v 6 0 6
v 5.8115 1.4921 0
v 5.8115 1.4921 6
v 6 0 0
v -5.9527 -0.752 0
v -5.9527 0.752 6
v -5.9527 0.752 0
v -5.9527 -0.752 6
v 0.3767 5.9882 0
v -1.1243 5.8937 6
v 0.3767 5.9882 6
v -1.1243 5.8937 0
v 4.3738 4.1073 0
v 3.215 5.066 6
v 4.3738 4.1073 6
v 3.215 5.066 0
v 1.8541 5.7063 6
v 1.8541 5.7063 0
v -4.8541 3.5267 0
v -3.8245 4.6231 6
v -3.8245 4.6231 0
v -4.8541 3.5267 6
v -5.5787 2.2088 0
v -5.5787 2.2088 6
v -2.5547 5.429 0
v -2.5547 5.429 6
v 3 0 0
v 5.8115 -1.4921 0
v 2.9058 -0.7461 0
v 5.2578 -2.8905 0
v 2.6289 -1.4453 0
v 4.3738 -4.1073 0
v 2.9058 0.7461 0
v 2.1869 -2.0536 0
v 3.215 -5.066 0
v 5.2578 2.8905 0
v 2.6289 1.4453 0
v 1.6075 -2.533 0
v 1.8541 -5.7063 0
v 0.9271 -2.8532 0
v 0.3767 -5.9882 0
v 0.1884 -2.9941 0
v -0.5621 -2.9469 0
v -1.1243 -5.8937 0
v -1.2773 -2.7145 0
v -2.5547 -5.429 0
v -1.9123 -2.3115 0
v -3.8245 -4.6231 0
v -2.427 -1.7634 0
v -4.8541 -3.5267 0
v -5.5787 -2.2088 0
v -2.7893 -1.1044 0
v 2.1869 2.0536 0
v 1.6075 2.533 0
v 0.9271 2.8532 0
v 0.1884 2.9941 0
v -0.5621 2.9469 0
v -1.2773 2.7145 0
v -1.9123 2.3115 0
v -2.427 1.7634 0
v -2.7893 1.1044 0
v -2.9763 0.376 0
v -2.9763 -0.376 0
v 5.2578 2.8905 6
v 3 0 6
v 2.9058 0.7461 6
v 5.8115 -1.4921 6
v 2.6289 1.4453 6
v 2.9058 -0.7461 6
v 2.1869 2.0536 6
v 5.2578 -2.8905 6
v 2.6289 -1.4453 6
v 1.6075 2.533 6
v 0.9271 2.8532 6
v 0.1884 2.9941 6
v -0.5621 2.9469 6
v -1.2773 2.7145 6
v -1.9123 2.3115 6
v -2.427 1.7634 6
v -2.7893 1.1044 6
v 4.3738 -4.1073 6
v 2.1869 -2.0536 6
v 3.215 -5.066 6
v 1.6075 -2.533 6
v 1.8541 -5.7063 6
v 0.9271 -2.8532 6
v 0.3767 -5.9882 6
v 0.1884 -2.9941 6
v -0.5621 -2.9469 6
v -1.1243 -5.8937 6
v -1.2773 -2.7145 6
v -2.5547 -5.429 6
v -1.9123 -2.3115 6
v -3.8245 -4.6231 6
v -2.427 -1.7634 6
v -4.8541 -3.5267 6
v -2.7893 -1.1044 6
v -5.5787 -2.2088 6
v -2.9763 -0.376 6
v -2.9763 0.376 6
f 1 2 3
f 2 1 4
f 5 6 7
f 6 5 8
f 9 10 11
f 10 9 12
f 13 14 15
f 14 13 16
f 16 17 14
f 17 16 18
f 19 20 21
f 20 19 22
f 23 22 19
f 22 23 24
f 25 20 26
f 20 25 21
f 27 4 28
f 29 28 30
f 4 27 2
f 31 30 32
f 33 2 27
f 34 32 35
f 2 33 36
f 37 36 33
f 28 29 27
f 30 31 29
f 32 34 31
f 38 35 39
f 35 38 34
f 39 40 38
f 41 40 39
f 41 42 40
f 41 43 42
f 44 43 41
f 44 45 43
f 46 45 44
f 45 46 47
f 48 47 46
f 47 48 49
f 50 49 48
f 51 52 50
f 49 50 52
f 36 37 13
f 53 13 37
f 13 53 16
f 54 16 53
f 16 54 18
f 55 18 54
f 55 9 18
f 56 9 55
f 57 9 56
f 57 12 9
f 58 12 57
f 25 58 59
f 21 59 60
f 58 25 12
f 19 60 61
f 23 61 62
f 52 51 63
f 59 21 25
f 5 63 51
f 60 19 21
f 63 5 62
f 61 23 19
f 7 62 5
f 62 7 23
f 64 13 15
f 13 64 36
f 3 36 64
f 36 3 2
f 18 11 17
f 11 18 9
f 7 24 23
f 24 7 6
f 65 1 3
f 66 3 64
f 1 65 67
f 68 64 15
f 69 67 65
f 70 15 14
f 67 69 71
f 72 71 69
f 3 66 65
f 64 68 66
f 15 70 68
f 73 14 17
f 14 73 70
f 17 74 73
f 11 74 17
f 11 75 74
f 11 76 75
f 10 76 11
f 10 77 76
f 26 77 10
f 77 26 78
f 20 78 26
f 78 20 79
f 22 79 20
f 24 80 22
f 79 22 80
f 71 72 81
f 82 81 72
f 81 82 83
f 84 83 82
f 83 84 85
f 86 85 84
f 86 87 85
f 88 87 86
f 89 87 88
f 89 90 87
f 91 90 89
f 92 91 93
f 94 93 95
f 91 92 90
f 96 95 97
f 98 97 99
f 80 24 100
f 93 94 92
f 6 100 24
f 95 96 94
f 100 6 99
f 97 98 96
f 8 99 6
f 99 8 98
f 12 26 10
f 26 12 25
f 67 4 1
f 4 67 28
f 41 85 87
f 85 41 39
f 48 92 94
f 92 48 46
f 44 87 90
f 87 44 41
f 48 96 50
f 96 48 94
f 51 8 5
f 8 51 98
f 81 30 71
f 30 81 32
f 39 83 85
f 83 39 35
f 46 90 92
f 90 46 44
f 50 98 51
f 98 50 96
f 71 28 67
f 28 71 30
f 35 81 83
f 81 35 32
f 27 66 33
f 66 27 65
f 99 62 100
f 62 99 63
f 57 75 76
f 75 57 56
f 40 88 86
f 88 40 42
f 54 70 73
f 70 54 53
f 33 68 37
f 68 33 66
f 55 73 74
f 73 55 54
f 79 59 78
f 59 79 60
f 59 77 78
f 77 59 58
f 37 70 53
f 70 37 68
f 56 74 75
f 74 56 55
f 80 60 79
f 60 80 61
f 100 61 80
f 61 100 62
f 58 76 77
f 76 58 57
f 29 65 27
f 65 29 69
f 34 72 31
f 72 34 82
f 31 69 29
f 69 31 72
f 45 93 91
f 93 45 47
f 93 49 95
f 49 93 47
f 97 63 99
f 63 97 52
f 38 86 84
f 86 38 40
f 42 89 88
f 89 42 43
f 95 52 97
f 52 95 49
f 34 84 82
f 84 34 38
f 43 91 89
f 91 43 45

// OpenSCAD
quality=25;

pin_gap_radius=3;

backing_thickness=2*3;



difference()
{
  cylinder(r=pin_gap_radius*2,h=backing_thickness,$fn=quality);
  cylinder(r=pin_gap_radius,h=backing_thickness,$fn=quality);
        
}
